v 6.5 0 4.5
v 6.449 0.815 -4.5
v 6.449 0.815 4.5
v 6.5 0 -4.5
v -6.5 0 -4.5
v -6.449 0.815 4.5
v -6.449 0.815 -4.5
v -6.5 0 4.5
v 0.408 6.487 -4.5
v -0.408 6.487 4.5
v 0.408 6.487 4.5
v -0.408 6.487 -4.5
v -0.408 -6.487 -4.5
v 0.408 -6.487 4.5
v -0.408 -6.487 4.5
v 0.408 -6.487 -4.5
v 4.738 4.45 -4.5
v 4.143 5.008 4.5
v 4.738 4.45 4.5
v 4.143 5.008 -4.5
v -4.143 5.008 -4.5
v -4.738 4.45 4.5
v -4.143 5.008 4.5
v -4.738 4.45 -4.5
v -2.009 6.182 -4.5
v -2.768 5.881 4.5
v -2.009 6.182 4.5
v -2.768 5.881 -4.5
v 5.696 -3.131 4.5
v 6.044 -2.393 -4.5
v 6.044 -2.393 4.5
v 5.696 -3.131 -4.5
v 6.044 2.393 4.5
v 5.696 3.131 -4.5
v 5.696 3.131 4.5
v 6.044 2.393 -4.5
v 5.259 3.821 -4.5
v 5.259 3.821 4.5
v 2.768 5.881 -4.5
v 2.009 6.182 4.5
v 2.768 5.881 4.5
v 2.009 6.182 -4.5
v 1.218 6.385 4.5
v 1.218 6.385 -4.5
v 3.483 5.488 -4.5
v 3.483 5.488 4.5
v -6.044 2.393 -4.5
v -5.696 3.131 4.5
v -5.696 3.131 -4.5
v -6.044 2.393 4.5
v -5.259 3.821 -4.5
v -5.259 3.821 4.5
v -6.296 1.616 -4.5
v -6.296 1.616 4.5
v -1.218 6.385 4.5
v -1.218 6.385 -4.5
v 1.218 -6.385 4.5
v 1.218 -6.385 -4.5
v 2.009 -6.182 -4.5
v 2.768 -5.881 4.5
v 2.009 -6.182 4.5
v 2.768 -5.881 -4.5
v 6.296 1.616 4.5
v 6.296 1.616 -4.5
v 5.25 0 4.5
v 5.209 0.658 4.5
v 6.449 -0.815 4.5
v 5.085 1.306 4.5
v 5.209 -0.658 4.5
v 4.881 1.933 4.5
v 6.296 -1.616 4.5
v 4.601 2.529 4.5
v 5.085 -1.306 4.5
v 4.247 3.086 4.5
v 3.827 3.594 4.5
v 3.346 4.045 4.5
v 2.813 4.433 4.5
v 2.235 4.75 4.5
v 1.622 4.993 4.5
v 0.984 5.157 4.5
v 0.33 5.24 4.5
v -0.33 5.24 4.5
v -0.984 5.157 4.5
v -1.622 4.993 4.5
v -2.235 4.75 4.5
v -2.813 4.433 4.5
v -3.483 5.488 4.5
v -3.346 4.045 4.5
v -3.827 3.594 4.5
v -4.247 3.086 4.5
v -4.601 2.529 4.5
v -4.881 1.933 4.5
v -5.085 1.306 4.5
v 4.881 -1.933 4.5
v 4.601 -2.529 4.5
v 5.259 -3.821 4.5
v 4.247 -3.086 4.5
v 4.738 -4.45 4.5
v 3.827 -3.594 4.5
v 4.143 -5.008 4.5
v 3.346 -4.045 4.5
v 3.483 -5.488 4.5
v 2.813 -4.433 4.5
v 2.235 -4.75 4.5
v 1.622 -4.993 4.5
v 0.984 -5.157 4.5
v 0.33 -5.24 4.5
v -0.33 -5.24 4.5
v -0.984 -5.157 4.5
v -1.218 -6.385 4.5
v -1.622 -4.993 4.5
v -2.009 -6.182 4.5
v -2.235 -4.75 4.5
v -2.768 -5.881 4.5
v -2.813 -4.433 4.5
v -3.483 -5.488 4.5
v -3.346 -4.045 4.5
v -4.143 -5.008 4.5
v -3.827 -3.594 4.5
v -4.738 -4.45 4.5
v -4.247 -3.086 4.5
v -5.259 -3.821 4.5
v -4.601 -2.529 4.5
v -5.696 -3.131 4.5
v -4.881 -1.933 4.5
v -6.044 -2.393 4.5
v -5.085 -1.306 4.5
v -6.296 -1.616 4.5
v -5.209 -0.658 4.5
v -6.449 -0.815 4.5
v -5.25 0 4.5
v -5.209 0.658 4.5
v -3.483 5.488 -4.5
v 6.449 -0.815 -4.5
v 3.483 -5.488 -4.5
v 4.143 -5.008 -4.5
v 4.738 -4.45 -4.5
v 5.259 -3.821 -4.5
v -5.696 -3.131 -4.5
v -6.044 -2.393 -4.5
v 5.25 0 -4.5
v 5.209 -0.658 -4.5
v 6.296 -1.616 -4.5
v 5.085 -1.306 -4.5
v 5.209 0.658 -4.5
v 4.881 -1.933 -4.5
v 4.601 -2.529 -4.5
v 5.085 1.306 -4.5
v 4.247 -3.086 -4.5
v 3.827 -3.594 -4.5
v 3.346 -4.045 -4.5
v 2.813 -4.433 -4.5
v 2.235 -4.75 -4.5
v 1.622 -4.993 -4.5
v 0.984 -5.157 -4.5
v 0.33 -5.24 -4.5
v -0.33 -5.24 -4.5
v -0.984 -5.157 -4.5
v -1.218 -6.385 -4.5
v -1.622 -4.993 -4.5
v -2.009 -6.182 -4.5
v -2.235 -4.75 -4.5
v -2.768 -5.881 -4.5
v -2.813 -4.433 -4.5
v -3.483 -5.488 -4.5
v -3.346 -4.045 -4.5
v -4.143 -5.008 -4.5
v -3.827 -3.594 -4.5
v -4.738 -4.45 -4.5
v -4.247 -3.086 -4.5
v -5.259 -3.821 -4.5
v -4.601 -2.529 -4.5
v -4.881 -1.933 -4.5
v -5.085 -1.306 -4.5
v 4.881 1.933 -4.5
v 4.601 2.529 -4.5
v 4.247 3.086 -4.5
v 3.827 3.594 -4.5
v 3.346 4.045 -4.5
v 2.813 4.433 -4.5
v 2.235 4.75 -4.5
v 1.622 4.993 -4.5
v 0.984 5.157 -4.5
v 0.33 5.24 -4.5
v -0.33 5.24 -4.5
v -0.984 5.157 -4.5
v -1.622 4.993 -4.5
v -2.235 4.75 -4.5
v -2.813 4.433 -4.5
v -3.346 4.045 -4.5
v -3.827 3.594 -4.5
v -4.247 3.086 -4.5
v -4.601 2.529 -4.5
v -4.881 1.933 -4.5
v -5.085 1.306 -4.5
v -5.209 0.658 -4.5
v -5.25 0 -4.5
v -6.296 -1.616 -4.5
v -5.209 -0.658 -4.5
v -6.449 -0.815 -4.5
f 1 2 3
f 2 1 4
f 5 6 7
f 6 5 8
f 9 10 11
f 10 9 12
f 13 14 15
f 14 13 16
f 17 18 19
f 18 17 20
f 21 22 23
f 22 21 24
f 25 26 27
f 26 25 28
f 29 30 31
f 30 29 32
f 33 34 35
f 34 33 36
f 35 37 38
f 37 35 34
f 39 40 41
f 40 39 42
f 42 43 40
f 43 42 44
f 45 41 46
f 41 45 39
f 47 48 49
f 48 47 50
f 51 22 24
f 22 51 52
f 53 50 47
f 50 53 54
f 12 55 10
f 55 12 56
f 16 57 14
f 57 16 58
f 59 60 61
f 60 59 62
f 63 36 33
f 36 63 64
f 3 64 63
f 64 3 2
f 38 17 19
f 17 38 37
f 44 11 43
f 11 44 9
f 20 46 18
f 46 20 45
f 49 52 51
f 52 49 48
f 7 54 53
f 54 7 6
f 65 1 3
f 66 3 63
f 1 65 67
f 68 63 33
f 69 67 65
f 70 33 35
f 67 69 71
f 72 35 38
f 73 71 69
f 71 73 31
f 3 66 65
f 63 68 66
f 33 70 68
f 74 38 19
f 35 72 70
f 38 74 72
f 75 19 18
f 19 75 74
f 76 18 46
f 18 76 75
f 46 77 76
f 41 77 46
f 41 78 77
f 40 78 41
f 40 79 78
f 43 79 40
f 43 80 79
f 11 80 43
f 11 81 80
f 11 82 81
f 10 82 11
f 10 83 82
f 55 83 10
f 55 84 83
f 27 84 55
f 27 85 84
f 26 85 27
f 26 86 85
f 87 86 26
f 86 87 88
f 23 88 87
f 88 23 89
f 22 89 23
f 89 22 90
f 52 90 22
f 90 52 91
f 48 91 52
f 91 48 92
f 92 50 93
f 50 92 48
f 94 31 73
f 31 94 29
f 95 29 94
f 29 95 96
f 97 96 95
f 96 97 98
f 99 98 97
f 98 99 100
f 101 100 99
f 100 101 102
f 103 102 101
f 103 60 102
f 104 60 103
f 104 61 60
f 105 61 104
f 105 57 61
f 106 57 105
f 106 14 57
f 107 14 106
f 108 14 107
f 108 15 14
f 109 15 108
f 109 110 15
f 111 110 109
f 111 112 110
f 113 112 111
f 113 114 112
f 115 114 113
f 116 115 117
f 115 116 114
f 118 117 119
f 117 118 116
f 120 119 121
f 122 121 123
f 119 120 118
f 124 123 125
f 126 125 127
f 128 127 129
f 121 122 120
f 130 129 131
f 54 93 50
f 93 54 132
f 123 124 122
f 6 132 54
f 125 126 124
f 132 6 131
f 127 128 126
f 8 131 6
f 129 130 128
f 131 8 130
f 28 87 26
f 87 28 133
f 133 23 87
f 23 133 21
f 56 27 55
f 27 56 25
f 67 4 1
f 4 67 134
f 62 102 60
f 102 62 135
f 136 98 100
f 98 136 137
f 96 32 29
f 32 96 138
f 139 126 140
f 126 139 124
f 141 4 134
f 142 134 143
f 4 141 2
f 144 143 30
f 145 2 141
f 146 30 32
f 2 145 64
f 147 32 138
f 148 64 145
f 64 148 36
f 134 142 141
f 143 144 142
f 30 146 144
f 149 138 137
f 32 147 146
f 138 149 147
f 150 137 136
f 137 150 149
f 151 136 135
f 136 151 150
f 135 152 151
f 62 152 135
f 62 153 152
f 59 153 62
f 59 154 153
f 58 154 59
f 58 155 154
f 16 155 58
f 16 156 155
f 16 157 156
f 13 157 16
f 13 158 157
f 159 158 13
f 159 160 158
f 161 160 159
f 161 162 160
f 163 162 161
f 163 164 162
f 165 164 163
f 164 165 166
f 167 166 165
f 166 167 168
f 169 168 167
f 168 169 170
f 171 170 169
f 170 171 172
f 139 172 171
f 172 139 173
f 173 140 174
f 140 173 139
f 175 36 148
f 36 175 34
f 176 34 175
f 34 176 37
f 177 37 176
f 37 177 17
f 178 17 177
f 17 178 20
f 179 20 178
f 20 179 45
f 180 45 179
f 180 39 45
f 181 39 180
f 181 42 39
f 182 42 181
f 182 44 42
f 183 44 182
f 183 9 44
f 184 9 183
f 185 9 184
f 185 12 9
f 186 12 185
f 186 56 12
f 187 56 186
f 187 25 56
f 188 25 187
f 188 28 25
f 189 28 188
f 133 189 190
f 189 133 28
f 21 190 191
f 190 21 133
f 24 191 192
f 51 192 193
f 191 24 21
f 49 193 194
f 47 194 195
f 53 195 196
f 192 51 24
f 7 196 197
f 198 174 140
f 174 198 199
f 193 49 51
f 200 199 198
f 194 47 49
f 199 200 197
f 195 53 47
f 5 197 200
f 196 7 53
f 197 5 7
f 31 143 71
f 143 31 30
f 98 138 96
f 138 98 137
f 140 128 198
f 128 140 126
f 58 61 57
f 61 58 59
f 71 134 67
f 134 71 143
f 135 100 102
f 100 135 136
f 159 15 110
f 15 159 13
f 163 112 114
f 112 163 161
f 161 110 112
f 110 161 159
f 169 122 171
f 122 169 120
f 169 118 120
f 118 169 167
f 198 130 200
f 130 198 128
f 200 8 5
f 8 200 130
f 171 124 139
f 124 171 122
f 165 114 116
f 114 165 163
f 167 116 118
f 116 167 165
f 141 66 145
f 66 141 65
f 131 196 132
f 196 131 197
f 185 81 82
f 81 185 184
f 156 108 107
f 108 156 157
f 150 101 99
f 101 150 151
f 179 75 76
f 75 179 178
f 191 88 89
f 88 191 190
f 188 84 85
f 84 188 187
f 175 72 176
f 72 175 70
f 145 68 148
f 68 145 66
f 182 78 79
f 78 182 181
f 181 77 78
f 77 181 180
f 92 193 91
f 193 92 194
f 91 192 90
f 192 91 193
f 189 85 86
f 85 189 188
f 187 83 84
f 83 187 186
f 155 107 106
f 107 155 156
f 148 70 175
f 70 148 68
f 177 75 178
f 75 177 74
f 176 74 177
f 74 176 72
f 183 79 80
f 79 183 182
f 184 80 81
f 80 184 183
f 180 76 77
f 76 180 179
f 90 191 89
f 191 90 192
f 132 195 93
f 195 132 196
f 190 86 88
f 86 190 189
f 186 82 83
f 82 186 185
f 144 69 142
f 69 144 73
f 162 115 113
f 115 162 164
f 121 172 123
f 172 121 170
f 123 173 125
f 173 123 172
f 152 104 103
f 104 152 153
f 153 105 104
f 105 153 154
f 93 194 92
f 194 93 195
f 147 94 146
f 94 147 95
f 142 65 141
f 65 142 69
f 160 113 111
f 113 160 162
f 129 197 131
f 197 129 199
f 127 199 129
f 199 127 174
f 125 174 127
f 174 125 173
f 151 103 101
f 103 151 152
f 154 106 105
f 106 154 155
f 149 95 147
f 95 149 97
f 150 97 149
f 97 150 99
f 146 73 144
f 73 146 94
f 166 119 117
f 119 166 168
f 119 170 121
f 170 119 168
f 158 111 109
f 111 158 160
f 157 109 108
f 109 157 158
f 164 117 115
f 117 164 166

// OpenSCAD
$fn = 50;


difference() {
	union() {
		translate(v = [0, 0, -4.5000000000]) {
			cylinder(h = 9, r = 6.5000000000);
		}
	}
	union() {
		translate(v = [0, 0, -100.0000000000]) {
			cylinder(h = 200, r = 5.2500000000);
		}
	}
}
